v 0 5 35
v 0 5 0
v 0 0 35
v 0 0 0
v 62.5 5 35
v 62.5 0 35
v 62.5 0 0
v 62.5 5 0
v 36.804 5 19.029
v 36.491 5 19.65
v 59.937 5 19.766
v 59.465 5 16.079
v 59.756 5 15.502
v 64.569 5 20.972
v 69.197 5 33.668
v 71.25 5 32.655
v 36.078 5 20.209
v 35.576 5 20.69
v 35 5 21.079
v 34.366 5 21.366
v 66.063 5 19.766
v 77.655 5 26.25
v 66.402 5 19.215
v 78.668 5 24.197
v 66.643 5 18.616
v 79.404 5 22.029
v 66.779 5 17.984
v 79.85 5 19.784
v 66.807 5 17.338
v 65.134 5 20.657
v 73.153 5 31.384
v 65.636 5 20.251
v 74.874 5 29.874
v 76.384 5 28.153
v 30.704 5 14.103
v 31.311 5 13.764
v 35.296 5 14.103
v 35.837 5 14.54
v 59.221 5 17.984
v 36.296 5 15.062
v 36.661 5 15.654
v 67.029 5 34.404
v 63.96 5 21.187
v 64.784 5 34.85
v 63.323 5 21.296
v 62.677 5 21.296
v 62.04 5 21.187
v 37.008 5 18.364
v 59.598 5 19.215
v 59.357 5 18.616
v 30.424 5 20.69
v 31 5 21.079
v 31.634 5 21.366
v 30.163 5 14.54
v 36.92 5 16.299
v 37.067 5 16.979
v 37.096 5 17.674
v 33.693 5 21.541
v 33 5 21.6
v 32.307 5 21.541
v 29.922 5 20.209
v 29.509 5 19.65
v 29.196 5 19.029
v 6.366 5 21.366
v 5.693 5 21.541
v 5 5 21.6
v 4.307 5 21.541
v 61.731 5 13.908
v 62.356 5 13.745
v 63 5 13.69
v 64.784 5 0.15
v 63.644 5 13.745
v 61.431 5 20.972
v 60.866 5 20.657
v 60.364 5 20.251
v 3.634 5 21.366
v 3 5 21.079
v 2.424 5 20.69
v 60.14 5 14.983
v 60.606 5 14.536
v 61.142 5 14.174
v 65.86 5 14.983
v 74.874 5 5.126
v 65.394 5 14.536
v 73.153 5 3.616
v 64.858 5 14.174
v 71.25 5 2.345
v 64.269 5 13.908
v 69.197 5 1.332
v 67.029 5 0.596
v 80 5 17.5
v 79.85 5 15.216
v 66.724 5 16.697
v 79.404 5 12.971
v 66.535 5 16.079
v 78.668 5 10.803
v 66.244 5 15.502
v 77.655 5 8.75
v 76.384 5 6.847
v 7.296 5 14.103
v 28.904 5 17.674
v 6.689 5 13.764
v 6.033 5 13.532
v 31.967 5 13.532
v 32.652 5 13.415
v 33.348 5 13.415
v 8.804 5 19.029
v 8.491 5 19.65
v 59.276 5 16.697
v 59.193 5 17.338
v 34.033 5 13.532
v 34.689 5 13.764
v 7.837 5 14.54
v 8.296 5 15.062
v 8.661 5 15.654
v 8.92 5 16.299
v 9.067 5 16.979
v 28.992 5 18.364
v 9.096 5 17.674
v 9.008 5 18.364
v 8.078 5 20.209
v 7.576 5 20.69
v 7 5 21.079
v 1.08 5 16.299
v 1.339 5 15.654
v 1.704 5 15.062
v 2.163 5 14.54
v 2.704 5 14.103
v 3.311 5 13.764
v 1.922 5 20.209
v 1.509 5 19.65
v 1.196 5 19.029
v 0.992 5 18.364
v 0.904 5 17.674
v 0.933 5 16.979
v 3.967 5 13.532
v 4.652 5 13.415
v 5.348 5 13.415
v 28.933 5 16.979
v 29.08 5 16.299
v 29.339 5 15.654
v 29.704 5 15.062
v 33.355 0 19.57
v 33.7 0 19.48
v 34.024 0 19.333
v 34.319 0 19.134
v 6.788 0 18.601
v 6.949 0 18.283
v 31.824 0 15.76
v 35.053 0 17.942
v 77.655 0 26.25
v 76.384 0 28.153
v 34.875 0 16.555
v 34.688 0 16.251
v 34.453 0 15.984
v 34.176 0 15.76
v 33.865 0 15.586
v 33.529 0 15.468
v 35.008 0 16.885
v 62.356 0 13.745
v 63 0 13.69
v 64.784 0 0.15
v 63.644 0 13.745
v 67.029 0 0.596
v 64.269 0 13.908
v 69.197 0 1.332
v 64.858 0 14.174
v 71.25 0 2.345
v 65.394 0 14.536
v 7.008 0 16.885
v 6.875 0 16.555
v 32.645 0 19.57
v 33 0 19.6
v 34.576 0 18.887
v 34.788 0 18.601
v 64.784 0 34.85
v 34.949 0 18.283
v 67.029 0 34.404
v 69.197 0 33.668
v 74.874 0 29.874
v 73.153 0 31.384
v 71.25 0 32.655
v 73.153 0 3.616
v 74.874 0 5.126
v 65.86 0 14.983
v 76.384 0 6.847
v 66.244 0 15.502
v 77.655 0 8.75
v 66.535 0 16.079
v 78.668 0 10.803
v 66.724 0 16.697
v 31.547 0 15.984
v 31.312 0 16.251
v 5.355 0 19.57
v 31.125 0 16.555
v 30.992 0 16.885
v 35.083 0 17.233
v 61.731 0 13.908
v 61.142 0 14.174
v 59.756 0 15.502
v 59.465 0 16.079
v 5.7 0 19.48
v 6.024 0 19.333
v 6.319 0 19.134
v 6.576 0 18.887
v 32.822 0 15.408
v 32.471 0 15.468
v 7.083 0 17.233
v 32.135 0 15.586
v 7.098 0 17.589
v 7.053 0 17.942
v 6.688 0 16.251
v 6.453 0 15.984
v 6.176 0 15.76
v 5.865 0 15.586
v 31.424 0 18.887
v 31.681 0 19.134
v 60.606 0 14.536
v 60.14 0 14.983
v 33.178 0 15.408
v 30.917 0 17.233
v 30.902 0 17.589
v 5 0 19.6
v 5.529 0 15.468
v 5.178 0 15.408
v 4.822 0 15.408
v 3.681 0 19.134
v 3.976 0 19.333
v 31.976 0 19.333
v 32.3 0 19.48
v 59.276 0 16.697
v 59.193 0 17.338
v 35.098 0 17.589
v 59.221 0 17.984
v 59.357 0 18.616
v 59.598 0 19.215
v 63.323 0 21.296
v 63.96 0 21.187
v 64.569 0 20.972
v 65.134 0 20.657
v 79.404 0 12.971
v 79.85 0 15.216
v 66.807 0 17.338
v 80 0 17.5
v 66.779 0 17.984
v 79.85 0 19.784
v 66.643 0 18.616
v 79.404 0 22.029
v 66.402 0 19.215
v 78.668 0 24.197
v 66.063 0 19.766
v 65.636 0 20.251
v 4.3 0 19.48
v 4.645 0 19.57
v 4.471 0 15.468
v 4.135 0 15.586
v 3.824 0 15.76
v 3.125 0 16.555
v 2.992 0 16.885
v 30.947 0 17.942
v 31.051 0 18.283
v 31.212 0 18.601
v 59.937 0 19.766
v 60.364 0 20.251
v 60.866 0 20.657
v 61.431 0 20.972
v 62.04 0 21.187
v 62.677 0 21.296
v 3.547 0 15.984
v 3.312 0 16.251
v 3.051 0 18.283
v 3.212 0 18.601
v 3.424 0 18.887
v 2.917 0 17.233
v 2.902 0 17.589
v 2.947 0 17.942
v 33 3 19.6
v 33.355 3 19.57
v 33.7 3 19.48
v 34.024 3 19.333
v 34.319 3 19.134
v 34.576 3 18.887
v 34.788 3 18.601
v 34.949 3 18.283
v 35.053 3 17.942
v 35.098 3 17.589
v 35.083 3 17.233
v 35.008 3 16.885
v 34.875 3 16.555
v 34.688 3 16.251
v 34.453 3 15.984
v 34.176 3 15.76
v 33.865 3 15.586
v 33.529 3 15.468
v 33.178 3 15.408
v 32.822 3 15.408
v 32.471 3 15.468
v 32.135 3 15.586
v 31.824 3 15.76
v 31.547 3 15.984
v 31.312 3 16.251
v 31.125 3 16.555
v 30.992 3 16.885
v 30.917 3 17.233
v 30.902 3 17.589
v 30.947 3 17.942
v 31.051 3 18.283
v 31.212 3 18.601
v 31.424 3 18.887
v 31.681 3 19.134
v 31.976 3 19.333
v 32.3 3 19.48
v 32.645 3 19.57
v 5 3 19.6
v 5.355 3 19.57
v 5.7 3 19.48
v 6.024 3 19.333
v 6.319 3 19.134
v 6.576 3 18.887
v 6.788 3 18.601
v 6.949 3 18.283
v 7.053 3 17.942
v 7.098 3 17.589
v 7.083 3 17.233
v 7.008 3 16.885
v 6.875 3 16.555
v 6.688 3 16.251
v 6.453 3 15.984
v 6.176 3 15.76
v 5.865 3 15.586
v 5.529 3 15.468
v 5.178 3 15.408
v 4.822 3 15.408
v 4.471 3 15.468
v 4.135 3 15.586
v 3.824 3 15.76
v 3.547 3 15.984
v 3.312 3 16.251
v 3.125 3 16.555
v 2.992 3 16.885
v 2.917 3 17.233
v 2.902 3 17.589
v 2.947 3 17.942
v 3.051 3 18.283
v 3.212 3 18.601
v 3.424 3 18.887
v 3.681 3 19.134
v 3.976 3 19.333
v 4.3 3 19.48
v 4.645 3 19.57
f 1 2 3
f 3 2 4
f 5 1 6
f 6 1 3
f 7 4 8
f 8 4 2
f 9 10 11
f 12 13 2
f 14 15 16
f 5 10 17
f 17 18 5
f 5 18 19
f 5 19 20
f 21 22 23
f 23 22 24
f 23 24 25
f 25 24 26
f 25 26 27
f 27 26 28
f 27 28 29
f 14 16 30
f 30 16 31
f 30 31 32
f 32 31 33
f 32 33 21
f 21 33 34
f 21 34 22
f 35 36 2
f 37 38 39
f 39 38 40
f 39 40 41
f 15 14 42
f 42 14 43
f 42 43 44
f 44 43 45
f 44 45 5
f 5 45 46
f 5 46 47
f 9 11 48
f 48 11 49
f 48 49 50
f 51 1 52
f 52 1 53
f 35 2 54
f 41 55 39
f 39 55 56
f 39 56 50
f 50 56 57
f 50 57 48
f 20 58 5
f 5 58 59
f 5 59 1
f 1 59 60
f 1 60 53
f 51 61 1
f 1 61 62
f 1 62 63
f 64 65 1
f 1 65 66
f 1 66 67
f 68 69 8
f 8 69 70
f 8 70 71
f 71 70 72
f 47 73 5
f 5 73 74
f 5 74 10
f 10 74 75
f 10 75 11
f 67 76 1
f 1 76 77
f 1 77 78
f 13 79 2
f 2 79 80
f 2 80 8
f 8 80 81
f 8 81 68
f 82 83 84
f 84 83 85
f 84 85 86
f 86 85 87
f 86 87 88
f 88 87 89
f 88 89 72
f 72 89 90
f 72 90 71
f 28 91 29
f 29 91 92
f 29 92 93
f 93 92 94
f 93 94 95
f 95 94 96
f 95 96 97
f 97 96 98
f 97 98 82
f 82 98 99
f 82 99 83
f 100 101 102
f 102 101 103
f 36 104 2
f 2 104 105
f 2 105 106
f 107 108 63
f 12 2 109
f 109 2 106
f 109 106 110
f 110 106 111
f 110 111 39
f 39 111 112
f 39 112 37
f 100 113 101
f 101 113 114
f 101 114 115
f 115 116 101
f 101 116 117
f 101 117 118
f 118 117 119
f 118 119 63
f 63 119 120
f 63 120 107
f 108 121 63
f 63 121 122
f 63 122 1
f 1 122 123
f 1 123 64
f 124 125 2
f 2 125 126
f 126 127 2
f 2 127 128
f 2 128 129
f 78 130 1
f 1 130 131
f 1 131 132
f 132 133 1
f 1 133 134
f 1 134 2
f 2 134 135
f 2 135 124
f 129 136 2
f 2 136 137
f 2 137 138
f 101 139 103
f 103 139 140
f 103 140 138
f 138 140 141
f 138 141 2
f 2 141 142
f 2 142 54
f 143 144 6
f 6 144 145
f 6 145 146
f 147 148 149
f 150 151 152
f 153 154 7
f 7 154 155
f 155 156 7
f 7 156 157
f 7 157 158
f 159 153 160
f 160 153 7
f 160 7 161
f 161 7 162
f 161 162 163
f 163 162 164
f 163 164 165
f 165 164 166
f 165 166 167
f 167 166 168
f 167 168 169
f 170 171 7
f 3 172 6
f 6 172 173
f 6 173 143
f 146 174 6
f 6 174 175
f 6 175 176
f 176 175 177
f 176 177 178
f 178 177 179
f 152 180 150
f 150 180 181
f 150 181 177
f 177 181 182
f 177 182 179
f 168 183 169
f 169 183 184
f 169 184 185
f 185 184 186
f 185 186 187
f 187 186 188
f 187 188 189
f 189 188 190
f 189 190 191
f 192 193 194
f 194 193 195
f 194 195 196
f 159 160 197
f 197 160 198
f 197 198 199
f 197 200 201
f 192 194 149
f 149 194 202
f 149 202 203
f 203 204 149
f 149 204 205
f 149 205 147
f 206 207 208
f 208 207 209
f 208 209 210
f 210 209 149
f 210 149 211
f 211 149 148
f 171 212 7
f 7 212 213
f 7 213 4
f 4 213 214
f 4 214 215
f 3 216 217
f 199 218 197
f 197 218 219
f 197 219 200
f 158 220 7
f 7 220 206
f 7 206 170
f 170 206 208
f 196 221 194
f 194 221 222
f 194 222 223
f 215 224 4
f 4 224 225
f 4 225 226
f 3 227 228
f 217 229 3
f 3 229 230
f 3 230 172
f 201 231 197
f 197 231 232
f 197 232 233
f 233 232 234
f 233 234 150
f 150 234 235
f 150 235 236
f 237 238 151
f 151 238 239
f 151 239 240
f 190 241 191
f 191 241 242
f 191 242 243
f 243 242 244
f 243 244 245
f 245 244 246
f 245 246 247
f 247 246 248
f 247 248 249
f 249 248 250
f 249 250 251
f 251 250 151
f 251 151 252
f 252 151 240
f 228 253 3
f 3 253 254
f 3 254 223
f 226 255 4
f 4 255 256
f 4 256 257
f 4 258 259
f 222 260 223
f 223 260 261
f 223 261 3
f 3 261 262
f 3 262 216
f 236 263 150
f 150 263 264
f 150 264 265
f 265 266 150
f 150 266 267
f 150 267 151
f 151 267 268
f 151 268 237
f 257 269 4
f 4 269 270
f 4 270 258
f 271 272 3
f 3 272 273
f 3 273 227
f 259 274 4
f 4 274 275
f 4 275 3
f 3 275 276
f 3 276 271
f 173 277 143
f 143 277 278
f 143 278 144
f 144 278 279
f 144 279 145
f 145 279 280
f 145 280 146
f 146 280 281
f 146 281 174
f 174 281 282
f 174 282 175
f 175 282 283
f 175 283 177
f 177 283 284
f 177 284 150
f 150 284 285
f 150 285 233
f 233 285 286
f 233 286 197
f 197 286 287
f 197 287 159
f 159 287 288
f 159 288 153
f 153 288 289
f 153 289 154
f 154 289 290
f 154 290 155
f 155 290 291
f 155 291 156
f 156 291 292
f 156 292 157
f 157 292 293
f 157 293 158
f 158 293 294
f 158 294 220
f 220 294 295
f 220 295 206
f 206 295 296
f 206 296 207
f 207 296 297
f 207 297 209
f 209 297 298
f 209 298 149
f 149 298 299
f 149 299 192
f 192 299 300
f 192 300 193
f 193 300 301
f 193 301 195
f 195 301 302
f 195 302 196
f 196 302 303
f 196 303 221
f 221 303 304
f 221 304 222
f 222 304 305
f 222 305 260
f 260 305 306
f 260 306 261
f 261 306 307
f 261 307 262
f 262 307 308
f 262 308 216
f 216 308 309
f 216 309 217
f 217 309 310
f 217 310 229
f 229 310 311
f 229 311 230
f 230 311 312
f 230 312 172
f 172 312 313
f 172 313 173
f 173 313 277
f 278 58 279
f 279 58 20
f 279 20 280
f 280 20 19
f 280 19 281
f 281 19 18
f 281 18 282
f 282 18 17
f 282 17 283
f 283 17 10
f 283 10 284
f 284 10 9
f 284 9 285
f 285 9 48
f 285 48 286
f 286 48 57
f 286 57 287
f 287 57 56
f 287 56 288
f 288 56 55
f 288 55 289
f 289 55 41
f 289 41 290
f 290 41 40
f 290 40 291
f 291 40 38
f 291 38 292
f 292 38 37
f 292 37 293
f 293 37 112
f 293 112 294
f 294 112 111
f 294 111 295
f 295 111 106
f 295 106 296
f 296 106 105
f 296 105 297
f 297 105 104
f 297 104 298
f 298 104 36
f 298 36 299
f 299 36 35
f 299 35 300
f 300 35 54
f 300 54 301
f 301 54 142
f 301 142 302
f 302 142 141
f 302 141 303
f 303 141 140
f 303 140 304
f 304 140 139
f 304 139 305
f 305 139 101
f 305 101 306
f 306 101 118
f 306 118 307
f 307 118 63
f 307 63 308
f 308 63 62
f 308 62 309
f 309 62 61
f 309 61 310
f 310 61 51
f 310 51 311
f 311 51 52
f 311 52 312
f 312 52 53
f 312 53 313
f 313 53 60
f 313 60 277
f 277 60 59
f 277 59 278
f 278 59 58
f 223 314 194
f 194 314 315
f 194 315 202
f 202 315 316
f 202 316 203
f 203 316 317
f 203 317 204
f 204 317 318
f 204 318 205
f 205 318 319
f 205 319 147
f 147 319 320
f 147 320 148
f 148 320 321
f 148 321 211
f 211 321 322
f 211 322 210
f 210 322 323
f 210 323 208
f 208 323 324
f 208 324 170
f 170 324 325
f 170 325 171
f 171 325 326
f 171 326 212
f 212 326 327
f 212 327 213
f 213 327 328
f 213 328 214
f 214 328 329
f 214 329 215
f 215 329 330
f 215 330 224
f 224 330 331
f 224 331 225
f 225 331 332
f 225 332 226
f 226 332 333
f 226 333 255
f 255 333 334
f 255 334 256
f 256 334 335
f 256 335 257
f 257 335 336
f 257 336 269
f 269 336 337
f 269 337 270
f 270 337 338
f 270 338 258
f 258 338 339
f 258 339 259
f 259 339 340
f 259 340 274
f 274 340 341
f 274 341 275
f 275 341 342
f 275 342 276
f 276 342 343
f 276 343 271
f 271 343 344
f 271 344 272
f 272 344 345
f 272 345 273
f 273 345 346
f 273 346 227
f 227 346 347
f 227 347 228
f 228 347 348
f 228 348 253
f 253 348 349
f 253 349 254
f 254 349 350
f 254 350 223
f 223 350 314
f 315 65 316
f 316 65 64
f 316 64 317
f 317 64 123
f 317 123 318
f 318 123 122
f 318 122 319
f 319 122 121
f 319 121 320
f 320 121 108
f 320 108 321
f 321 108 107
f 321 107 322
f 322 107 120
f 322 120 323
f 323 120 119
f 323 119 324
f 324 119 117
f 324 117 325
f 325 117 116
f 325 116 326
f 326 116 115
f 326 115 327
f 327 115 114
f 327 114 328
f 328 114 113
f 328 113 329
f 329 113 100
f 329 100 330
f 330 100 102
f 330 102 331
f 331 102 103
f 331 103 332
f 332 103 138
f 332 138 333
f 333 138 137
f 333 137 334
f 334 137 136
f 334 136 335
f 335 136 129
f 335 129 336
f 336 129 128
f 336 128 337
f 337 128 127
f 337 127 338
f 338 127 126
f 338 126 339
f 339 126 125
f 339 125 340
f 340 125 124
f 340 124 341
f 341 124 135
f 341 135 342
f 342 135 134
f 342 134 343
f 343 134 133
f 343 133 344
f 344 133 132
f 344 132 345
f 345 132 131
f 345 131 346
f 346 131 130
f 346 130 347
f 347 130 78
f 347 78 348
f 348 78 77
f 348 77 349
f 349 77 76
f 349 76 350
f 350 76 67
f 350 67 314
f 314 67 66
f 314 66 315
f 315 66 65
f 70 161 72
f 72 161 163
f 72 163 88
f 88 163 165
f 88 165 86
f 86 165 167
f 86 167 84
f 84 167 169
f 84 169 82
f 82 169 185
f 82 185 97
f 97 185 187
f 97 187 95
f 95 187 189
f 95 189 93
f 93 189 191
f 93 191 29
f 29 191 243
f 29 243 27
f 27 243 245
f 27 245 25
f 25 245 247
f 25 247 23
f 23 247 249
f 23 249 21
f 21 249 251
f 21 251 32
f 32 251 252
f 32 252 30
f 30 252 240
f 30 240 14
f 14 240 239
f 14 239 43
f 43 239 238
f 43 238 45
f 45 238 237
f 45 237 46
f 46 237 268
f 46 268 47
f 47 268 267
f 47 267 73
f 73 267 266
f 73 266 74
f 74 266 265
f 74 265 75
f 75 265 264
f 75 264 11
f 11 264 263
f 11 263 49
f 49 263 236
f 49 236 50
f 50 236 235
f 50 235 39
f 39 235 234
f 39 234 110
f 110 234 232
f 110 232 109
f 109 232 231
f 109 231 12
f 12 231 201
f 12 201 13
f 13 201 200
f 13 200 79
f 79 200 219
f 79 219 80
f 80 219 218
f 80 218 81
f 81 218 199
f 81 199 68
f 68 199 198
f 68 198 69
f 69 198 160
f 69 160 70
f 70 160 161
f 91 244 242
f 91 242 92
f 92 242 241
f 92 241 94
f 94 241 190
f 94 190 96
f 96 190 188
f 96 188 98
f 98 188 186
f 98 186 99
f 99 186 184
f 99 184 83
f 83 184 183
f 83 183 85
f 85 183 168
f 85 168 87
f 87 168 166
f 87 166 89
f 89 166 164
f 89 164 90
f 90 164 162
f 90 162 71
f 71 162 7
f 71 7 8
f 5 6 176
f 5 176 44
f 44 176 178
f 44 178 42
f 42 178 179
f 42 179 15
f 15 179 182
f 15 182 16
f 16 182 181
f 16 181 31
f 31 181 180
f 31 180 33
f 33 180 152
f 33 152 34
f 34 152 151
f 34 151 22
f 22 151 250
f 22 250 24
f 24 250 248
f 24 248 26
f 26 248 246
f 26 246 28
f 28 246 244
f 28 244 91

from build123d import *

# Parameters (mm, degrees)
SKETCH1_W                                         = 80
SKETCH1_H                                         = 35
BOSS_EXTRUDE1_DEPTH                               = 5
CSK_FOR_M3_5_FLAT_HEAD_MACHINE_SCREW1_D           = 4.2
CSK_FOR_M3_5_FLAT_HEAD_MACHINE_SCREW1_CSINK_D     = 8.2
CSK_FOR_M3_5_FLAT_HEAD_MACHINE_SCREW1_CSINK_ANGLE = 90
SKETCH5_R                                         = 3.81
CUT_EXTRUDE1_DEPTH                                = 5
FILLET1_R                                         = 17.5


with BuildPart() as part:
    # Sketch1 → Boss-Extrude1 (new body)
    with BuildSketch(Plane(origin=(0, 0, 0), x_dir=(1, 0, 0), z_dir=(0, 1, 0))):
        with Locations((40, -17.5)):
            Rectangle(SKETCH1_W, SKETCH1_H)
    extrude(amount=BOSS_EXTRUDE1_DEPTH)

    # CSK for M3.5 Flat Head Machine Screw1 (through all)
    with Locations(Plane(origin=(0, 5, 0), x_dir=(1, 0, 0), z_dir=(0, 1, 0))):
        with Locations((33, -17.5), (5, -17.5)):
            CounterSinkHole(CSK_FOR_M3_5_FLAT_HEAD_MACHINE_SCREW1_D / 2, CSK_FOR_M3_5_FLAT_HEAD_MACHINE_SCREW1_CSINK_D / 2, counter_sink_angle=CSK_FOR_M3_5_FLAT_HEAD_MACHINE_SCREW1_CSINK_ANGLE)

    # Sketch5 → Cut-Extrude1 (cut)
    with BuildSketch(Plane.XZ):
        with Locations(Location((63, 17.5, 0), (0, 0, 270))):
            Circle(SKETCH5_R)
    extrude(amount=-CUT_EXTRUDE1_DEPTH, mode=Mode.SUBTRACT)

    # Fillet1
    fillet1_edges = [part.edges().sort_by_distance(p)[0] for p in [
        (80, 2.5, 35),
        (80, 2.5, 0),
    ]]
    fillet(fillet1_edges, radius=FILLET1_R - 0.0001)  # a hair under: the kernel refuses the full size


solid = part.part
